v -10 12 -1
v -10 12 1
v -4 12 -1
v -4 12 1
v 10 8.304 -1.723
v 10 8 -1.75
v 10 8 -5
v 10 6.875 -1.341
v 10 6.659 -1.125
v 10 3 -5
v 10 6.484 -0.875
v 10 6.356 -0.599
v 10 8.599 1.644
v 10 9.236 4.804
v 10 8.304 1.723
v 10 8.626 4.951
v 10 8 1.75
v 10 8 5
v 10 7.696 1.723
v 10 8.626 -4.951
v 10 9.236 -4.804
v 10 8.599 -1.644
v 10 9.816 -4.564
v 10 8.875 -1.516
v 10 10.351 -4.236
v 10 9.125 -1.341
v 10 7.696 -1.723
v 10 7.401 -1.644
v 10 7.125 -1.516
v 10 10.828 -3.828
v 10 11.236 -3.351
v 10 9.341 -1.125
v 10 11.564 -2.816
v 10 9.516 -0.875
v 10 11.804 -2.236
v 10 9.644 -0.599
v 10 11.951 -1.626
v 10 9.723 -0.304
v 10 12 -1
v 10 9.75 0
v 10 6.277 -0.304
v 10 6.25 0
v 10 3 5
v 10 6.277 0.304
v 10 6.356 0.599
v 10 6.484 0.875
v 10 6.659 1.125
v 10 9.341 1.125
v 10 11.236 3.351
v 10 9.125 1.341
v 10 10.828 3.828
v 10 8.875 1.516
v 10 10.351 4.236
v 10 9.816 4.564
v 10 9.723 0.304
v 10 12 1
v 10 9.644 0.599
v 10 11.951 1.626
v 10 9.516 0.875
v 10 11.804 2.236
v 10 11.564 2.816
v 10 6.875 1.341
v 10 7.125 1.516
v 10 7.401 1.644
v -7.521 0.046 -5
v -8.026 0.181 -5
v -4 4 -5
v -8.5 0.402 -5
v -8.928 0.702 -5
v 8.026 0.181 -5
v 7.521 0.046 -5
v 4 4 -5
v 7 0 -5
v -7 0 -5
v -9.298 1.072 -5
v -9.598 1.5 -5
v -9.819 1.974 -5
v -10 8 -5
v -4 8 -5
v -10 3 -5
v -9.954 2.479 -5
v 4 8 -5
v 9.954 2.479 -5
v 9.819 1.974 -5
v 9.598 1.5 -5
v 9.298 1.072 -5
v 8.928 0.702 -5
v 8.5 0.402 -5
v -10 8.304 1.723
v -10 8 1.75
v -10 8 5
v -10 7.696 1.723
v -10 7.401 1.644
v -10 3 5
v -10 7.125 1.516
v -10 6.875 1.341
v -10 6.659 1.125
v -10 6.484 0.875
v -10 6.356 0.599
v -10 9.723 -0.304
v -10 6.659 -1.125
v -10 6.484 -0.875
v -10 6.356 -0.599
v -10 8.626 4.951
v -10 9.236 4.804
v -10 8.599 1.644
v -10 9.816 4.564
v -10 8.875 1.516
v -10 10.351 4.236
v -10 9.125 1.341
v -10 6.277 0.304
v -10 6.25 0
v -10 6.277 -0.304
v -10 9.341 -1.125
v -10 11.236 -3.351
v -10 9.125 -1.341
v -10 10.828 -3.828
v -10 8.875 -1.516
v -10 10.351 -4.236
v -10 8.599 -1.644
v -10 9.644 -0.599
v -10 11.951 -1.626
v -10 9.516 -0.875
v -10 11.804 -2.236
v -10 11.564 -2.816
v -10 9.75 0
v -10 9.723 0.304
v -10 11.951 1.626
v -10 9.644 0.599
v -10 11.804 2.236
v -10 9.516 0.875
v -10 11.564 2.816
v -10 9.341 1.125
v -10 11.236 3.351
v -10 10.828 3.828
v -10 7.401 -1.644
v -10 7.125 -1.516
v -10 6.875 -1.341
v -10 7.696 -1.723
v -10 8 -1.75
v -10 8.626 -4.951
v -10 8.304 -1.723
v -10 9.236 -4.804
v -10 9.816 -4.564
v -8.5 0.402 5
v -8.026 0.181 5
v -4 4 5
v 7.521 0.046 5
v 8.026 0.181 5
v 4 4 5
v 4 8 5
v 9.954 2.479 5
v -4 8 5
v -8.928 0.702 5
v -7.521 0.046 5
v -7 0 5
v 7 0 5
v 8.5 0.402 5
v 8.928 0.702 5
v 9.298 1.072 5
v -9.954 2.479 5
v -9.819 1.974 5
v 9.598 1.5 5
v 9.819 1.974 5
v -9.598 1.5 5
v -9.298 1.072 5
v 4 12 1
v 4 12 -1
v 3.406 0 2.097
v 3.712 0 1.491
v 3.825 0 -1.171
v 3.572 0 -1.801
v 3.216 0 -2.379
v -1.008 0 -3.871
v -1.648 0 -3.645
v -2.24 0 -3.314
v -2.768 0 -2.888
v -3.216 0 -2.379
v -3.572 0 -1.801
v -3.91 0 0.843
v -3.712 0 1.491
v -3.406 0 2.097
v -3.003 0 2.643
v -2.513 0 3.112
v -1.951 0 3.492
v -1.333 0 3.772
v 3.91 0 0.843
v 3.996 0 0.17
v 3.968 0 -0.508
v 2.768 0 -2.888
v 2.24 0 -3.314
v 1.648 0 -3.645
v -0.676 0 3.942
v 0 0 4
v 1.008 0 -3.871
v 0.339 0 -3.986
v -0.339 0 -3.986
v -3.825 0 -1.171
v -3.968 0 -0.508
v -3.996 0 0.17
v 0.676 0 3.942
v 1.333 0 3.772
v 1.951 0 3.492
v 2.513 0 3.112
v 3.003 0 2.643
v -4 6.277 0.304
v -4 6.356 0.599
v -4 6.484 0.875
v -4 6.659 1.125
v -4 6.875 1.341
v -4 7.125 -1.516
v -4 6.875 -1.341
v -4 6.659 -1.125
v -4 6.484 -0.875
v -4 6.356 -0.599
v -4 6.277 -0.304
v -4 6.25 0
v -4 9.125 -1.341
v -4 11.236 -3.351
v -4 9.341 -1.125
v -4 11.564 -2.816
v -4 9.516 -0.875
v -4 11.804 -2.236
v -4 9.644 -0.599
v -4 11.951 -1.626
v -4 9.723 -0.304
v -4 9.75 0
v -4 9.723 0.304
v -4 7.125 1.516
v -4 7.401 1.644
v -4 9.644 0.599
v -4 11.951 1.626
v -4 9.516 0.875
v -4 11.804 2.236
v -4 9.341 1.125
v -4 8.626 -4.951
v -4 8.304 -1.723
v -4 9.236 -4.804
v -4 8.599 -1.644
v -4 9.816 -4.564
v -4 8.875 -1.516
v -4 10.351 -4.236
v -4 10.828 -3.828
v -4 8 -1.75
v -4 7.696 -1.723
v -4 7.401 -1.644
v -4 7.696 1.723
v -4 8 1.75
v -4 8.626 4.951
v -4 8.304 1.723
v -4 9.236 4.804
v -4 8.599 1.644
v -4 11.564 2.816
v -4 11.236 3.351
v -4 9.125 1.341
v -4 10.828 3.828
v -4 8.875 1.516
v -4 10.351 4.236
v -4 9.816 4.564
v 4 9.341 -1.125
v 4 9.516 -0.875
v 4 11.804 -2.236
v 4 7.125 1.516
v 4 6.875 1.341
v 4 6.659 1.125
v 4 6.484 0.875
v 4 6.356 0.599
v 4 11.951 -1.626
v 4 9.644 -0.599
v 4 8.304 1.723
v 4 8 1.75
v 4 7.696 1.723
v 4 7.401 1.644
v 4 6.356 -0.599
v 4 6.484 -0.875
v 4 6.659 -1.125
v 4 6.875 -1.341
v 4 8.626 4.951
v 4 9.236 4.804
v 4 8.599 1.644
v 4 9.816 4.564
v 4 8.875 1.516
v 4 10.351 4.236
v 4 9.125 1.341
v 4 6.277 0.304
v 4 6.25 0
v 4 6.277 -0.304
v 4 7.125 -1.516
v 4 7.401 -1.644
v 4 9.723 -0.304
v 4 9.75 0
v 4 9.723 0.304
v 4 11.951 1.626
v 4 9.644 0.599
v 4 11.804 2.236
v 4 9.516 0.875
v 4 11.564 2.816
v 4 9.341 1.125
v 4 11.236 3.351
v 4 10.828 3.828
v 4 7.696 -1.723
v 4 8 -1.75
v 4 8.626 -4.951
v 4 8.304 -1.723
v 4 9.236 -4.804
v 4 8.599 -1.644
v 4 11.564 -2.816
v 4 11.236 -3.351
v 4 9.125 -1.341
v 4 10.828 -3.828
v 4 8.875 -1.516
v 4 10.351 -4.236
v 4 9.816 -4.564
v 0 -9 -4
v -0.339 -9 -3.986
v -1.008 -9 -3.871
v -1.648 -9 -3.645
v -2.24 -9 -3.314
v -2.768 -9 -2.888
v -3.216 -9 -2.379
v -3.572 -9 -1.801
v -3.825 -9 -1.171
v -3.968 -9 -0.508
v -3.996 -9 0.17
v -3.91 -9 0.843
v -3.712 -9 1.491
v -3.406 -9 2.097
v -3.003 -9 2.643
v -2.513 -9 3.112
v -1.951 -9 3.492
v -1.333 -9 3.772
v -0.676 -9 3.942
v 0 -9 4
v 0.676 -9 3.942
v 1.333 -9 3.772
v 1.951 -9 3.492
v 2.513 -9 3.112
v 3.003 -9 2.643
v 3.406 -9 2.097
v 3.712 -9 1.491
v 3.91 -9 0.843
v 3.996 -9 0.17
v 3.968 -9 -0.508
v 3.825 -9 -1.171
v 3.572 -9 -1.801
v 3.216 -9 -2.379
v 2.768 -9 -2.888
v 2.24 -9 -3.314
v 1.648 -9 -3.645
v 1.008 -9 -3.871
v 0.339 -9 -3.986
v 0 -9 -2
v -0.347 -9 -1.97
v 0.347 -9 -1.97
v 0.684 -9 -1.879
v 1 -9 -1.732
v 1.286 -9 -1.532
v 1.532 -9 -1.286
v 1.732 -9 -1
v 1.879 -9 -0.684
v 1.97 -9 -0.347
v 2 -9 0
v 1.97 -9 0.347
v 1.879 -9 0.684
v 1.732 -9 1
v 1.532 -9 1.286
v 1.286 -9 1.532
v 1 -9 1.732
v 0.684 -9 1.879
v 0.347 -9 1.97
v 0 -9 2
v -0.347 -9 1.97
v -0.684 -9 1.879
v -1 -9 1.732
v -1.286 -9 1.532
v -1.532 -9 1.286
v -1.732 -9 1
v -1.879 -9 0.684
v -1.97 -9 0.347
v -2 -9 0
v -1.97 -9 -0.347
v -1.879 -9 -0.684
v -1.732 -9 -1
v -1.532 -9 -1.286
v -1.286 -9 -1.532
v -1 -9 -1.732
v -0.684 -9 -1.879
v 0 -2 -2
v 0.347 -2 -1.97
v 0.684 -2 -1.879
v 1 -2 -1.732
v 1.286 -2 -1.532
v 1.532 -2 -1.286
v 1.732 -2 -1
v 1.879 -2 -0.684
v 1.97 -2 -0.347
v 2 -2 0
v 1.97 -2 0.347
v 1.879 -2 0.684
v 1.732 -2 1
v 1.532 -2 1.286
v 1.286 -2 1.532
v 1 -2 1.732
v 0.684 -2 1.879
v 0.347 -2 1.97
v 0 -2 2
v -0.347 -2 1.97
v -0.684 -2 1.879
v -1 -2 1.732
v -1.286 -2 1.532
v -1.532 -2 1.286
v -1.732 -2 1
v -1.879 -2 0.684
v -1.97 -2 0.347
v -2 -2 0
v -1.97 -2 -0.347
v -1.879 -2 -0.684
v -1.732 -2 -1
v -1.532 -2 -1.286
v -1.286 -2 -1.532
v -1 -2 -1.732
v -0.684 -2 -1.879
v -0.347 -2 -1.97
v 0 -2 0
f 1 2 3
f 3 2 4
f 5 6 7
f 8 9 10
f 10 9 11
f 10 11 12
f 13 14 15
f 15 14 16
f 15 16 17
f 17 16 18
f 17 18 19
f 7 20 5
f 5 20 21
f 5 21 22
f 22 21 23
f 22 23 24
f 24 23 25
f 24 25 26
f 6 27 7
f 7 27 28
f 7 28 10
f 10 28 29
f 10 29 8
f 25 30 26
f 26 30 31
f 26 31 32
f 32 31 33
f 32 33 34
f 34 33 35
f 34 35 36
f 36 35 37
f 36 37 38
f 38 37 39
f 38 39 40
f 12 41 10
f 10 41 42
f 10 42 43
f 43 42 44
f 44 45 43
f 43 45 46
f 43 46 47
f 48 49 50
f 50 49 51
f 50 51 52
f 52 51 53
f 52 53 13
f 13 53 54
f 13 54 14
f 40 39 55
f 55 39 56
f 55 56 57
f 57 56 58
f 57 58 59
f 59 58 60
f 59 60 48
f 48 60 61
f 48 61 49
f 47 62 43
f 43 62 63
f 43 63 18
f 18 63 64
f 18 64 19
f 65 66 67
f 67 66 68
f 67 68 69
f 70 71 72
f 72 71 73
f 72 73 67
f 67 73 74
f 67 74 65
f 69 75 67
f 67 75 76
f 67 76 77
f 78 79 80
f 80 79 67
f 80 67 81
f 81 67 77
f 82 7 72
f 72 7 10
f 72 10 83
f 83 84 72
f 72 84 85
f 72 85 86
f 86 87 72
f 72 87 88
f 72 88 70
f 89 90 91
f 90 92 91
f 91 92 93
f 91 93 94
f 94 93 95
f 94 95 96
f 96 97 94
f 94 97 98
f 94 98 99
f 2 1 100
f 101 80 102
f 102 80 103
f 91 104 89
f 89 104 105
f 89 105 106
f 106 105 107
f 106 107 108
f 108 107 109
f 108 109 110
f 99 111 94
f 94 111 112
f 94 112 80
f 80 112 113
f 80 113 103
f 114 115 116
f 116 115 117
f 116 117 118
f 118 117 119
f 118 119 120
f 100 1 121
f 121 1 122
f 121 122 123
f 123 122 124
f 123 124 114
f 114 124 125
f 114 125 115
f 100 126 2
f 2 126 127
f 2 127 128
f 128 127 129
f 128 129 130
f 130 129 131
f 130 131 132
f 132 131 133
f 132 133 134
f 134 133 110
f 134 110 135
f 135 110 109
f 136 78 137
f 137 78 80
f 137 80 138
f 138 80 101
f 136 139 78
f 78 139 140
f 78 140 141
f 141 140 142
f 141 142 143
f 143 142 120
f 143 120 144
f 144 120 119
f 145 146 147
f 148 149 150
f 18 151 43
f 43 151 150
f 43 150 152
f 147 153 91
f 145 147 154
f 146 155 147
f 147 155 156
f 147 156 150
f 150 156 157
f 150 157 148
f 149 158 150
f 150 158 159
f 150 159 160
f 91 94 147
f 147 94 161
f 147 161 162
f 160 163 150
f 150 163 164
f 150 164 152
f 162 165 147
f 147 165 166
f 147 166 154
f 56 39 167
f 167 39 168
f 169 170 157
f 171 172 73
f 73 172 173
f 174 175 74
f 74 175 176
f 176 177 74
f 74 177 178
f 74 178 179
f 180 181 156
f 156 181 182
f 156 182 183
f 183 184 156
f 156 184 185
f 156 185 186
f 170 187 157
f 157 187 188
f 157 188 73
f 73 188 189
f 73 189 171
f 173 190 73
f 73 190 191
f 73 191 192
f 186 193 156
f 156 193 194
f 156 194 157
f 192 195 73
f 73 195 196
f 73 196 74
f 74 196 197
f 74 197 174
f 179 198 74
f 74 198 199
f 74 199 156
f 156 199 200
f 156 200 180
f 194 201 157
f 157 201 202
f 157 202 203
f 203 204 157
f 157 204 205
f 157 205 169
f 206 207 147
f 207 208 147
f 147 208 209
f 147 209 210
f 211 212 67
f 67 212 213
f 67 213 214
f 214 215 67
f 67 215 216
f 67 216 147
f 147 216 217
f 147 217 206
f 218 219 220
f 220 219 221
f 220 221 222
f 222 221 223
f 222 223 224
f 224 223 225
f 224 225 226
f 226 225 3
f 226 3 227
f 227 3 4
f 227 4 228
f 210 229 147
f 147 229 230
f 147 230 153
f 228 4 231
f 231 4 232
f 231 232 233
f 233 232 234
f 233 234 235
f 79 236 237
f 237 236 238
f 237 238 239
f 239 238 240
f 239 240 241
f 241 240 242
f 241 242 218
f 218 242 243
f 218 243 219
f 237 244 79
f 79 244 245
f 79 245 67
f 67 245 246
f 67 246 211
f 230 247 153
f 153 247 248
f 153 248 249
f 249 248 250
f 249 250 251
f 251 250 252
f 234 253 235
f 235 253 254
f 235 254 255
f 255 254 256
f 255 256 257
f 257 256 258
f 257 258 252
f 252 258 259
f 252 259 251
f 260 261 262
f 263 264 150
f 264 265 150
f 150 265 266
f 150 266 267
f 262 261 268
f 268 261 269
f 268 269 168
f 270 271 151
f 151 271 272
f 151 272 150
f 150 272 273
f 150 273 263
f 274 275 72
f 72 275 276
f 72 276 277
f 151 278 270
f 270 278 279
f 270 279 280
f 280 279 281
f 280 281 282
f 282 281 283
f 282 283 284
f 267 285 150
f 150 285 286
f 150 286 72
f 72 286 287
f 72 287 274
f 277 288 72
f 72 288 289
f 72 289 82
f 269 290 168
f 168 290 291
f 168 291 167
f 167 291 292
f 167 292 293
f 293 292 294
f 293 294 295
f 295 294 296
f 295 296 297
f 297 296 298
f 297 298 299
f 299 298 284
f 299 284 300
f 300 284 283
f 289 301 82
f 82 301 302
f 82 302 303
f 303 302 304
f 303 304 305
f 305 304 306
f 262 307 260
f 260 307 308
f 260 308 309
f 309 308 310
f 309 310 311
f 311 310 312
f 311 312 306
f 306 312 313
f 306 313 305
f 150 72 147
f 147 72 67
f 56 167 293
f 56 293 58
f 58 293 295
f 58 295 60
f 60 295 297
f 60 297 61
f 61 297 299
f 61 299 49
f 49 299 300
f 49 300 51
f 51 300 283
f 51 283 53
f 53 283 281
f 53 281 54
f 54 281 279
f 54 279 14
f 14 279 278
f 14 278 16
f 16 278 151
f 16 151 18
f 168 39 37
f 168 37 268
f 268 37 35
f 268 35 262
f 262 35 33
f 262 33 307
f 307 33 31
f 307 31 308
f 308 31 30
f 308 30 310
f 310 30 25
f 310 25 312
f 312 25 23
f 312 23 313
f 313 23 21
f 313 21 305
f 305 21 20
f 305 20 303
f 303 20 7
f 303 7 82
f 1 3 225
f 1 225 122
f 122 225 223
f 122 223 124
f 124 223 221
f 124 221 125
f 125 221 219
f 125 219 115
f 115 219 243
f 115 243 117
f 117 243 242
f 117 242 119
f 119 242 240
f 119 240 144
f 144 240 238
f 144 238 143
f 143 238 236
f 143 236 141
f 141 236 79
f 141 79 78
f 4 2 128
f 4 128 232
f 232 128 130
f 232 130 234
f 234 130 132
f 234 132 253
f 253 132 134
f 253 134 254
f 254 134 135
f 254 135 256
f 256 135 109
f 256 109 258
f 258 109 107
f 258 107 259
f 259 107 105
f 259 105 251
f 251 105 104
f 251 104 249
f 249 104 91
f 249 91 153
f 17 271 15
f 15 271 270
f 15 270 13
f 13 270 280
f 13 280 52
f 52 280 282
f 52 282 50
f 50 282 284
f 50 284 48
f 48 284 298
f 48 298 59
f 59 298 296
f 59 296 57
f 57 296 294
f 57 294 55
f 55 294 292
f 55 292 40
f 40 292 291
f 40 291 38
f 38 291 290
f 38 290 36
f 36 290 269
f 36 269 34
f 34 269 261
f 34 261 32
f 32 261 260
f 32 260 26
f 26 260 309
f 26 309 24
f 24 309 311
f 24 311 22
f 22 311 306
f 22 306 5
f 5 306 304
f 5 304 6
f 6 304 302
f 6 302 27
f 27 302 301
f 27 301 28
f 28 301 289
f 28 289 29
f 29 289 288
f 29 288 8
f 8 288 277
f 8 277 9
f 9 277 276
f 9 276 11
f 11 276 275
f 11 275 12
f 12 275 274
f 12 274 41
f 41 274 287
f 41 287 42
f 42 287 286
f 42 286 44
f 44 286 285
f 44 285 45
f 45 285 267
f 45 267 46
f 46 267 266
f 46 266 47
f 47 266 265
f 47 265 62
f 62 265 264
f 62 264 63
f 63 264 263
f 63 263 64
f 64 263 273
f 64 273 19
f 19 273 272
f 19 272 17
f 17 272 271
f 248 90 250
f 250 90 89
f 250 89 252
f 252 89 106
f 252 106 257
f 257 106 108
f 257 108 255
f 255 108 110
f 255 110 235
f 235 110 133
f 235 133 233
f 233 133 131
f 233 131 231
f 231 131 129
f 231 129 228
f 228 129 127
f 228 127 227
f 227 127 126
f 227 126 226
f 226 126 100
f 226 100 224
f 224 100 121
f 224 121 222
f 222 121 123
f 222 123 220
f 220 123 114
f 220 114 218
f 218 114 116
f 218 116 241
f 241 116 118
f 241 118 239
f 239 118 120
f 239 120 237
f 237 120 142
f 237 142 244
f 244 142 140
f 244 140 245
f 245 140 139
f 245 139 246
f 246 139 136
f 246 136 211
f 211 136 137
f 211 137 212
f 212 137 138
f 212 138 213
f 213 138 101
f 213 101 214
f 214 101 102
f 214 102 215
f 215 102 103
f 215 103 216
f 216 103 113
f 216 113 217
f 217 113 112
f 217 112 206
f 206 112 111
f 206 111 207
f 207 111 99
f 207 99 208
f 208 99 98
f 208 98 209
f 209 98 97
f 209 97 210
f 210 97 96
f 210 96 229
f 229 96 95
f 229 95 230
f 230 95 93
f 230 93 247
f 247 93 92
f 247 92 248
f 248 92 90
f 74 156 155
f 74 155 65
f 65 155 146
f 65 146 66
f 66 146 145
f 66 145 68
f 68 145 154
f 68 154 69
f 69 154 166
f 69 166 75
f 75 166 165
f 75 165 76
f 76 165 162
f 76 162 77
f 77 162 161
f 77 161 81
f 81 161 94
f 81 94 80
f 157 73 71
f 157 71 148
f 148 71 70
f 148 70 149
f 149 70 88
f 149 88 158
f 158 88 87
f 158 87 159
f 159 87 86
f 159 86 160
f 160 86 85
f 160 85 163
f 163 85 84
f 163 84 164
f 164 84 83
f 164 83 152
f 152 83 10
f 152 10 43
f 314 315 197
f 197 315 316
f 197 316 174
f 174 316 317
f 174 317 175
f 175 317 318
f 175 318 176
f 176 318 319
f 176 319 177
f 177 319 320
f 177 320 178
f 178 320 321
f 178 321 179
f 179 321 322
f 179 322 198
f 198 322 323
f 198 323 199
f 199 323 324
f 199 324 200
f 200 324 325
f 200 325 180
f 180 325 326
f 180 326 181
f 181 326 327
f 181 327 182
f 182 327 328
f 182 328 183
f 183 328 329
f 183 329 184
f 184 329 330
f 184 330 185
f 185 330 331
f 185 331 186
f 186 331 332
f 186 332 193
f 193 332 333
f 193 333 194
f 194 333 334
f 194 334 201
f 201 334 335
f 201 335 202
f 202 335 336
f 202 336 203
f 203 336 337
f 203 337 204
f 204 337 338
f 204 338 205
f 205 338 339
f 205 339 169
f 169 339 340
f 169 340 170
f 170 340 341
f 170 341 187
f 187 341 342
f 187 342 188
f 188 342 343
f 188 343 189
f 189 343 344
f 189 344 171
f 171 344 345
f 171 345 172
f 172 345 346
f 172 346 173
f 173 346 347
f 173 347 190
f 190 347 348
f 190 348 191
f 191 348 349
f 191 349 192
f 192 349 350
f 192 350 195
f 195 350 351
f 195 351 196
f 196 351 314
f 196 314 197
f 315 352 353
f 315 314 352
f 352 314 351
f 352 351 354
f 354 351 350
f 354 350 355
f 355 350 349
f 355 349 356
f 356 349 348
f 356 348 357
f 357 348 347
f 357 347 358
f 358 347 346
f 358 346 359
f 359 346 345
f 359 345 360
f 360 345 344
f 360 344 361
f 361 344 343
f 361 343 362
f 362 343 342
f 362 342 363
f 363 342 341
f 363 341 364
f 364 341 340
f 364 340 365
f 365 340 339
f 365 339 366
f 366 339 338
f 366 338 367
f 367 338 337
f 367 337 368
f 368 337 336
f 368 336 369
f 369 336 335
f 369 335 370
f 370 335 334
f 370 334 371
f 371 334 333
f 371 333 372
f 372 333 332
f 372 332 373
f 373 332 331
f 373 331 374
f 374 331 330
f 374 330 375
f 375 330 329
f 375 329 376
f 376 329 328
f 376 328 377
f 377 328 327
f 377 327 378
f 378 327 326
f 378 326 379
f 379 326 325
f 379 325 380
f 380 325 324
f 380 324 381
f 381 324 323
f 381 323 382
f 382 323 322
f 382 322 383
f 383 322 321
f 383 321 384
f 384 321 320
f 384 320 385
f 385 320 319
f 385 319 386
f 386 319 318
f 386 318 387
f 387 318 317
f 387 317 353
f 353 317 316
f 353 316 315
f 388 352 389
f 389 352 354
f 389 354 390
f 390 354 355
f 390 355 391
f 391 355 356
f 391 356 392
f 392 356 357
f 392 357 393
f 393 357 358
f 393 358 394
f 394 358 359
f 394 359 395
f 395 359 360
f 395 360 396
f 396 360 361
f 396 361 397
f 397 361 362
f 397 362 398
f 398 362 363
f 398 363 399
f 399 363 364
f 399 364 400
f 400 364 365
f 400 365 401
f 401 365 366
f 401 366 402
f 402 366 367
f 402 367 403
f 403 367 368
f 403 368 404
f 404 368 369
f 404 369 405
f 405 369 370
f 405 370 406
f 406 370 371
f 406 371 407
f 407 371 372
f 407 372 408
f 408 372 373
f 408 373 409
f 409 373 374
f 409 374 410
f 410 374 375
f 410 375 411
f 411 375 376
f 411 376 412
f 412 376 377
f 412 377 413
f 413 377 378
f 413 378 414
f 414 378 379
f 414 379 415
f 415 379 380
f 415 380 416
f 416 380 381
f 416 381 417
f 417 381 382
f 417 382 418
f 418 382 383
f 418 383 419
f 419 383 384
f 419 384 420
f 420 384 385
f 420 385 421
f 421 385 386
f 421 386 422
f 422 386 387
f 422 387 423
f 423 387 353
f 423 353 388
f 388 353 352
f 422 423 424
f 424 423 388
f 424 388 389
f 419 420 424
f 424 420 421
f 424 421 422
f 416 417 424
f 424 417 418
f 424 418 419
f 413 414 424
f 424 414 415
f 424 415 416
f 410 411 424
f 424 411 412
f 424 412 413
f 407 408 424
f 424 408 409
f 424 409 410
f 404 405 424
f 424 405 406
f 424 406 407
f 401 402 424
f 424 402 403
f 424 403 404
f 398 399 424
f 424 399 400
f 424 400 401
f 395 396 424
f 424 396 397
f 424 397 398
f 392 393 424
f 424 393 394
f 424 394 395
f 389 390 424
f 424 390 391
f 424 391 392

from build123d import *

# Parameters (mm, degrees)
SKETCH1_W           = 20
SKETCH1_H           = 10
BOSS_EXTRUDE1_DEPTH = 12
SKETCH2_W           = 8
SKETCH2_H           = 10
CUT_EXTRUDE1_DEPTH  = 8
FILLET1_R           = 4
SKETCH3_R           = 1.75
CUT_EXTRUDE2_DEPTH  = 21
FILLET2_R           = 3
SKETCH5_R           = 4
BOSS_EXTRUDE2_DEPTH = 9
SKETCH6_R           = 2
CUT_EXTRUDE3_DEPTH  = 7


with BuildPart() as part:
    # Sketch1 → Boss-Extrude1 (new body)
    with BuildSketch(Plane(origin=(0, 0, 0), x_dir=(1, 0, 0), z_dir=(0, 1, 0))):
        Rectangle(SKETCH1_W, SKETCH1_H)
    extrude(amount=BOSS_EXTRUDE1_DEPTH)

    # Sketch2 → Cut-Extrude1 (cut)
    with BuildSketch(Plane(origin=(0, 12, 0), x_dir=(1, 0, 0), z_dir=(0, 1, 0))):
        Rectangle(SKETCH2_W, SKETCH2_H)
    extrude(amount=-CUT_EXTRUDE1_DEPTH, mode=Mode.SUBTRACT)

    # Fillet1
    fillet1_edges = [part.edges().sort_by_distance(p)[0] for p in [
        (-7, 12, -5),
        (7, 12, 5),
        (-7, 12, 5),
        (7, 12, -5),
    ]]
    fillet(fillet1_edges, radius=FILLET1_R)

    # Sketch3 → Cut-Extrude2 (cut, through all)
    with BuildSketch(Plane.ZY.offset(10)):
        with Locations((0, 8)):
            Circle(SKETCH3_R)
    extrude(amount=-CUT_EXTRUDE2_DEPTH, mode=Mode.SUBTRACT)

    # Fillet2
    fillet2_edges = [part.edges().sort_by_distance(p)[0] for p in [
        (-10, 0, 0),
        (10, 0, 0),
    ]]
    fillet(fillet2_edges, radius=FILLET2_R)

    # Sketch5 → Boss-Extrude2 (add)
    with BuildSketch(Plane.XZ):
        Circle(SKETCH5_R)
    extrude(amount=BOSS_EXTRUDE2_DEPTH)

    # Sketch6 → Cut-Extrude3 (cut)
    with BuildSketch(Plane.XZ.offset(9)):
        Circle(SKETCH6_R)
    extrude(amount=-CUT_EXTRUDE3_DEPTH, mode=Mode.SUBTRACT)


solid = part.part
